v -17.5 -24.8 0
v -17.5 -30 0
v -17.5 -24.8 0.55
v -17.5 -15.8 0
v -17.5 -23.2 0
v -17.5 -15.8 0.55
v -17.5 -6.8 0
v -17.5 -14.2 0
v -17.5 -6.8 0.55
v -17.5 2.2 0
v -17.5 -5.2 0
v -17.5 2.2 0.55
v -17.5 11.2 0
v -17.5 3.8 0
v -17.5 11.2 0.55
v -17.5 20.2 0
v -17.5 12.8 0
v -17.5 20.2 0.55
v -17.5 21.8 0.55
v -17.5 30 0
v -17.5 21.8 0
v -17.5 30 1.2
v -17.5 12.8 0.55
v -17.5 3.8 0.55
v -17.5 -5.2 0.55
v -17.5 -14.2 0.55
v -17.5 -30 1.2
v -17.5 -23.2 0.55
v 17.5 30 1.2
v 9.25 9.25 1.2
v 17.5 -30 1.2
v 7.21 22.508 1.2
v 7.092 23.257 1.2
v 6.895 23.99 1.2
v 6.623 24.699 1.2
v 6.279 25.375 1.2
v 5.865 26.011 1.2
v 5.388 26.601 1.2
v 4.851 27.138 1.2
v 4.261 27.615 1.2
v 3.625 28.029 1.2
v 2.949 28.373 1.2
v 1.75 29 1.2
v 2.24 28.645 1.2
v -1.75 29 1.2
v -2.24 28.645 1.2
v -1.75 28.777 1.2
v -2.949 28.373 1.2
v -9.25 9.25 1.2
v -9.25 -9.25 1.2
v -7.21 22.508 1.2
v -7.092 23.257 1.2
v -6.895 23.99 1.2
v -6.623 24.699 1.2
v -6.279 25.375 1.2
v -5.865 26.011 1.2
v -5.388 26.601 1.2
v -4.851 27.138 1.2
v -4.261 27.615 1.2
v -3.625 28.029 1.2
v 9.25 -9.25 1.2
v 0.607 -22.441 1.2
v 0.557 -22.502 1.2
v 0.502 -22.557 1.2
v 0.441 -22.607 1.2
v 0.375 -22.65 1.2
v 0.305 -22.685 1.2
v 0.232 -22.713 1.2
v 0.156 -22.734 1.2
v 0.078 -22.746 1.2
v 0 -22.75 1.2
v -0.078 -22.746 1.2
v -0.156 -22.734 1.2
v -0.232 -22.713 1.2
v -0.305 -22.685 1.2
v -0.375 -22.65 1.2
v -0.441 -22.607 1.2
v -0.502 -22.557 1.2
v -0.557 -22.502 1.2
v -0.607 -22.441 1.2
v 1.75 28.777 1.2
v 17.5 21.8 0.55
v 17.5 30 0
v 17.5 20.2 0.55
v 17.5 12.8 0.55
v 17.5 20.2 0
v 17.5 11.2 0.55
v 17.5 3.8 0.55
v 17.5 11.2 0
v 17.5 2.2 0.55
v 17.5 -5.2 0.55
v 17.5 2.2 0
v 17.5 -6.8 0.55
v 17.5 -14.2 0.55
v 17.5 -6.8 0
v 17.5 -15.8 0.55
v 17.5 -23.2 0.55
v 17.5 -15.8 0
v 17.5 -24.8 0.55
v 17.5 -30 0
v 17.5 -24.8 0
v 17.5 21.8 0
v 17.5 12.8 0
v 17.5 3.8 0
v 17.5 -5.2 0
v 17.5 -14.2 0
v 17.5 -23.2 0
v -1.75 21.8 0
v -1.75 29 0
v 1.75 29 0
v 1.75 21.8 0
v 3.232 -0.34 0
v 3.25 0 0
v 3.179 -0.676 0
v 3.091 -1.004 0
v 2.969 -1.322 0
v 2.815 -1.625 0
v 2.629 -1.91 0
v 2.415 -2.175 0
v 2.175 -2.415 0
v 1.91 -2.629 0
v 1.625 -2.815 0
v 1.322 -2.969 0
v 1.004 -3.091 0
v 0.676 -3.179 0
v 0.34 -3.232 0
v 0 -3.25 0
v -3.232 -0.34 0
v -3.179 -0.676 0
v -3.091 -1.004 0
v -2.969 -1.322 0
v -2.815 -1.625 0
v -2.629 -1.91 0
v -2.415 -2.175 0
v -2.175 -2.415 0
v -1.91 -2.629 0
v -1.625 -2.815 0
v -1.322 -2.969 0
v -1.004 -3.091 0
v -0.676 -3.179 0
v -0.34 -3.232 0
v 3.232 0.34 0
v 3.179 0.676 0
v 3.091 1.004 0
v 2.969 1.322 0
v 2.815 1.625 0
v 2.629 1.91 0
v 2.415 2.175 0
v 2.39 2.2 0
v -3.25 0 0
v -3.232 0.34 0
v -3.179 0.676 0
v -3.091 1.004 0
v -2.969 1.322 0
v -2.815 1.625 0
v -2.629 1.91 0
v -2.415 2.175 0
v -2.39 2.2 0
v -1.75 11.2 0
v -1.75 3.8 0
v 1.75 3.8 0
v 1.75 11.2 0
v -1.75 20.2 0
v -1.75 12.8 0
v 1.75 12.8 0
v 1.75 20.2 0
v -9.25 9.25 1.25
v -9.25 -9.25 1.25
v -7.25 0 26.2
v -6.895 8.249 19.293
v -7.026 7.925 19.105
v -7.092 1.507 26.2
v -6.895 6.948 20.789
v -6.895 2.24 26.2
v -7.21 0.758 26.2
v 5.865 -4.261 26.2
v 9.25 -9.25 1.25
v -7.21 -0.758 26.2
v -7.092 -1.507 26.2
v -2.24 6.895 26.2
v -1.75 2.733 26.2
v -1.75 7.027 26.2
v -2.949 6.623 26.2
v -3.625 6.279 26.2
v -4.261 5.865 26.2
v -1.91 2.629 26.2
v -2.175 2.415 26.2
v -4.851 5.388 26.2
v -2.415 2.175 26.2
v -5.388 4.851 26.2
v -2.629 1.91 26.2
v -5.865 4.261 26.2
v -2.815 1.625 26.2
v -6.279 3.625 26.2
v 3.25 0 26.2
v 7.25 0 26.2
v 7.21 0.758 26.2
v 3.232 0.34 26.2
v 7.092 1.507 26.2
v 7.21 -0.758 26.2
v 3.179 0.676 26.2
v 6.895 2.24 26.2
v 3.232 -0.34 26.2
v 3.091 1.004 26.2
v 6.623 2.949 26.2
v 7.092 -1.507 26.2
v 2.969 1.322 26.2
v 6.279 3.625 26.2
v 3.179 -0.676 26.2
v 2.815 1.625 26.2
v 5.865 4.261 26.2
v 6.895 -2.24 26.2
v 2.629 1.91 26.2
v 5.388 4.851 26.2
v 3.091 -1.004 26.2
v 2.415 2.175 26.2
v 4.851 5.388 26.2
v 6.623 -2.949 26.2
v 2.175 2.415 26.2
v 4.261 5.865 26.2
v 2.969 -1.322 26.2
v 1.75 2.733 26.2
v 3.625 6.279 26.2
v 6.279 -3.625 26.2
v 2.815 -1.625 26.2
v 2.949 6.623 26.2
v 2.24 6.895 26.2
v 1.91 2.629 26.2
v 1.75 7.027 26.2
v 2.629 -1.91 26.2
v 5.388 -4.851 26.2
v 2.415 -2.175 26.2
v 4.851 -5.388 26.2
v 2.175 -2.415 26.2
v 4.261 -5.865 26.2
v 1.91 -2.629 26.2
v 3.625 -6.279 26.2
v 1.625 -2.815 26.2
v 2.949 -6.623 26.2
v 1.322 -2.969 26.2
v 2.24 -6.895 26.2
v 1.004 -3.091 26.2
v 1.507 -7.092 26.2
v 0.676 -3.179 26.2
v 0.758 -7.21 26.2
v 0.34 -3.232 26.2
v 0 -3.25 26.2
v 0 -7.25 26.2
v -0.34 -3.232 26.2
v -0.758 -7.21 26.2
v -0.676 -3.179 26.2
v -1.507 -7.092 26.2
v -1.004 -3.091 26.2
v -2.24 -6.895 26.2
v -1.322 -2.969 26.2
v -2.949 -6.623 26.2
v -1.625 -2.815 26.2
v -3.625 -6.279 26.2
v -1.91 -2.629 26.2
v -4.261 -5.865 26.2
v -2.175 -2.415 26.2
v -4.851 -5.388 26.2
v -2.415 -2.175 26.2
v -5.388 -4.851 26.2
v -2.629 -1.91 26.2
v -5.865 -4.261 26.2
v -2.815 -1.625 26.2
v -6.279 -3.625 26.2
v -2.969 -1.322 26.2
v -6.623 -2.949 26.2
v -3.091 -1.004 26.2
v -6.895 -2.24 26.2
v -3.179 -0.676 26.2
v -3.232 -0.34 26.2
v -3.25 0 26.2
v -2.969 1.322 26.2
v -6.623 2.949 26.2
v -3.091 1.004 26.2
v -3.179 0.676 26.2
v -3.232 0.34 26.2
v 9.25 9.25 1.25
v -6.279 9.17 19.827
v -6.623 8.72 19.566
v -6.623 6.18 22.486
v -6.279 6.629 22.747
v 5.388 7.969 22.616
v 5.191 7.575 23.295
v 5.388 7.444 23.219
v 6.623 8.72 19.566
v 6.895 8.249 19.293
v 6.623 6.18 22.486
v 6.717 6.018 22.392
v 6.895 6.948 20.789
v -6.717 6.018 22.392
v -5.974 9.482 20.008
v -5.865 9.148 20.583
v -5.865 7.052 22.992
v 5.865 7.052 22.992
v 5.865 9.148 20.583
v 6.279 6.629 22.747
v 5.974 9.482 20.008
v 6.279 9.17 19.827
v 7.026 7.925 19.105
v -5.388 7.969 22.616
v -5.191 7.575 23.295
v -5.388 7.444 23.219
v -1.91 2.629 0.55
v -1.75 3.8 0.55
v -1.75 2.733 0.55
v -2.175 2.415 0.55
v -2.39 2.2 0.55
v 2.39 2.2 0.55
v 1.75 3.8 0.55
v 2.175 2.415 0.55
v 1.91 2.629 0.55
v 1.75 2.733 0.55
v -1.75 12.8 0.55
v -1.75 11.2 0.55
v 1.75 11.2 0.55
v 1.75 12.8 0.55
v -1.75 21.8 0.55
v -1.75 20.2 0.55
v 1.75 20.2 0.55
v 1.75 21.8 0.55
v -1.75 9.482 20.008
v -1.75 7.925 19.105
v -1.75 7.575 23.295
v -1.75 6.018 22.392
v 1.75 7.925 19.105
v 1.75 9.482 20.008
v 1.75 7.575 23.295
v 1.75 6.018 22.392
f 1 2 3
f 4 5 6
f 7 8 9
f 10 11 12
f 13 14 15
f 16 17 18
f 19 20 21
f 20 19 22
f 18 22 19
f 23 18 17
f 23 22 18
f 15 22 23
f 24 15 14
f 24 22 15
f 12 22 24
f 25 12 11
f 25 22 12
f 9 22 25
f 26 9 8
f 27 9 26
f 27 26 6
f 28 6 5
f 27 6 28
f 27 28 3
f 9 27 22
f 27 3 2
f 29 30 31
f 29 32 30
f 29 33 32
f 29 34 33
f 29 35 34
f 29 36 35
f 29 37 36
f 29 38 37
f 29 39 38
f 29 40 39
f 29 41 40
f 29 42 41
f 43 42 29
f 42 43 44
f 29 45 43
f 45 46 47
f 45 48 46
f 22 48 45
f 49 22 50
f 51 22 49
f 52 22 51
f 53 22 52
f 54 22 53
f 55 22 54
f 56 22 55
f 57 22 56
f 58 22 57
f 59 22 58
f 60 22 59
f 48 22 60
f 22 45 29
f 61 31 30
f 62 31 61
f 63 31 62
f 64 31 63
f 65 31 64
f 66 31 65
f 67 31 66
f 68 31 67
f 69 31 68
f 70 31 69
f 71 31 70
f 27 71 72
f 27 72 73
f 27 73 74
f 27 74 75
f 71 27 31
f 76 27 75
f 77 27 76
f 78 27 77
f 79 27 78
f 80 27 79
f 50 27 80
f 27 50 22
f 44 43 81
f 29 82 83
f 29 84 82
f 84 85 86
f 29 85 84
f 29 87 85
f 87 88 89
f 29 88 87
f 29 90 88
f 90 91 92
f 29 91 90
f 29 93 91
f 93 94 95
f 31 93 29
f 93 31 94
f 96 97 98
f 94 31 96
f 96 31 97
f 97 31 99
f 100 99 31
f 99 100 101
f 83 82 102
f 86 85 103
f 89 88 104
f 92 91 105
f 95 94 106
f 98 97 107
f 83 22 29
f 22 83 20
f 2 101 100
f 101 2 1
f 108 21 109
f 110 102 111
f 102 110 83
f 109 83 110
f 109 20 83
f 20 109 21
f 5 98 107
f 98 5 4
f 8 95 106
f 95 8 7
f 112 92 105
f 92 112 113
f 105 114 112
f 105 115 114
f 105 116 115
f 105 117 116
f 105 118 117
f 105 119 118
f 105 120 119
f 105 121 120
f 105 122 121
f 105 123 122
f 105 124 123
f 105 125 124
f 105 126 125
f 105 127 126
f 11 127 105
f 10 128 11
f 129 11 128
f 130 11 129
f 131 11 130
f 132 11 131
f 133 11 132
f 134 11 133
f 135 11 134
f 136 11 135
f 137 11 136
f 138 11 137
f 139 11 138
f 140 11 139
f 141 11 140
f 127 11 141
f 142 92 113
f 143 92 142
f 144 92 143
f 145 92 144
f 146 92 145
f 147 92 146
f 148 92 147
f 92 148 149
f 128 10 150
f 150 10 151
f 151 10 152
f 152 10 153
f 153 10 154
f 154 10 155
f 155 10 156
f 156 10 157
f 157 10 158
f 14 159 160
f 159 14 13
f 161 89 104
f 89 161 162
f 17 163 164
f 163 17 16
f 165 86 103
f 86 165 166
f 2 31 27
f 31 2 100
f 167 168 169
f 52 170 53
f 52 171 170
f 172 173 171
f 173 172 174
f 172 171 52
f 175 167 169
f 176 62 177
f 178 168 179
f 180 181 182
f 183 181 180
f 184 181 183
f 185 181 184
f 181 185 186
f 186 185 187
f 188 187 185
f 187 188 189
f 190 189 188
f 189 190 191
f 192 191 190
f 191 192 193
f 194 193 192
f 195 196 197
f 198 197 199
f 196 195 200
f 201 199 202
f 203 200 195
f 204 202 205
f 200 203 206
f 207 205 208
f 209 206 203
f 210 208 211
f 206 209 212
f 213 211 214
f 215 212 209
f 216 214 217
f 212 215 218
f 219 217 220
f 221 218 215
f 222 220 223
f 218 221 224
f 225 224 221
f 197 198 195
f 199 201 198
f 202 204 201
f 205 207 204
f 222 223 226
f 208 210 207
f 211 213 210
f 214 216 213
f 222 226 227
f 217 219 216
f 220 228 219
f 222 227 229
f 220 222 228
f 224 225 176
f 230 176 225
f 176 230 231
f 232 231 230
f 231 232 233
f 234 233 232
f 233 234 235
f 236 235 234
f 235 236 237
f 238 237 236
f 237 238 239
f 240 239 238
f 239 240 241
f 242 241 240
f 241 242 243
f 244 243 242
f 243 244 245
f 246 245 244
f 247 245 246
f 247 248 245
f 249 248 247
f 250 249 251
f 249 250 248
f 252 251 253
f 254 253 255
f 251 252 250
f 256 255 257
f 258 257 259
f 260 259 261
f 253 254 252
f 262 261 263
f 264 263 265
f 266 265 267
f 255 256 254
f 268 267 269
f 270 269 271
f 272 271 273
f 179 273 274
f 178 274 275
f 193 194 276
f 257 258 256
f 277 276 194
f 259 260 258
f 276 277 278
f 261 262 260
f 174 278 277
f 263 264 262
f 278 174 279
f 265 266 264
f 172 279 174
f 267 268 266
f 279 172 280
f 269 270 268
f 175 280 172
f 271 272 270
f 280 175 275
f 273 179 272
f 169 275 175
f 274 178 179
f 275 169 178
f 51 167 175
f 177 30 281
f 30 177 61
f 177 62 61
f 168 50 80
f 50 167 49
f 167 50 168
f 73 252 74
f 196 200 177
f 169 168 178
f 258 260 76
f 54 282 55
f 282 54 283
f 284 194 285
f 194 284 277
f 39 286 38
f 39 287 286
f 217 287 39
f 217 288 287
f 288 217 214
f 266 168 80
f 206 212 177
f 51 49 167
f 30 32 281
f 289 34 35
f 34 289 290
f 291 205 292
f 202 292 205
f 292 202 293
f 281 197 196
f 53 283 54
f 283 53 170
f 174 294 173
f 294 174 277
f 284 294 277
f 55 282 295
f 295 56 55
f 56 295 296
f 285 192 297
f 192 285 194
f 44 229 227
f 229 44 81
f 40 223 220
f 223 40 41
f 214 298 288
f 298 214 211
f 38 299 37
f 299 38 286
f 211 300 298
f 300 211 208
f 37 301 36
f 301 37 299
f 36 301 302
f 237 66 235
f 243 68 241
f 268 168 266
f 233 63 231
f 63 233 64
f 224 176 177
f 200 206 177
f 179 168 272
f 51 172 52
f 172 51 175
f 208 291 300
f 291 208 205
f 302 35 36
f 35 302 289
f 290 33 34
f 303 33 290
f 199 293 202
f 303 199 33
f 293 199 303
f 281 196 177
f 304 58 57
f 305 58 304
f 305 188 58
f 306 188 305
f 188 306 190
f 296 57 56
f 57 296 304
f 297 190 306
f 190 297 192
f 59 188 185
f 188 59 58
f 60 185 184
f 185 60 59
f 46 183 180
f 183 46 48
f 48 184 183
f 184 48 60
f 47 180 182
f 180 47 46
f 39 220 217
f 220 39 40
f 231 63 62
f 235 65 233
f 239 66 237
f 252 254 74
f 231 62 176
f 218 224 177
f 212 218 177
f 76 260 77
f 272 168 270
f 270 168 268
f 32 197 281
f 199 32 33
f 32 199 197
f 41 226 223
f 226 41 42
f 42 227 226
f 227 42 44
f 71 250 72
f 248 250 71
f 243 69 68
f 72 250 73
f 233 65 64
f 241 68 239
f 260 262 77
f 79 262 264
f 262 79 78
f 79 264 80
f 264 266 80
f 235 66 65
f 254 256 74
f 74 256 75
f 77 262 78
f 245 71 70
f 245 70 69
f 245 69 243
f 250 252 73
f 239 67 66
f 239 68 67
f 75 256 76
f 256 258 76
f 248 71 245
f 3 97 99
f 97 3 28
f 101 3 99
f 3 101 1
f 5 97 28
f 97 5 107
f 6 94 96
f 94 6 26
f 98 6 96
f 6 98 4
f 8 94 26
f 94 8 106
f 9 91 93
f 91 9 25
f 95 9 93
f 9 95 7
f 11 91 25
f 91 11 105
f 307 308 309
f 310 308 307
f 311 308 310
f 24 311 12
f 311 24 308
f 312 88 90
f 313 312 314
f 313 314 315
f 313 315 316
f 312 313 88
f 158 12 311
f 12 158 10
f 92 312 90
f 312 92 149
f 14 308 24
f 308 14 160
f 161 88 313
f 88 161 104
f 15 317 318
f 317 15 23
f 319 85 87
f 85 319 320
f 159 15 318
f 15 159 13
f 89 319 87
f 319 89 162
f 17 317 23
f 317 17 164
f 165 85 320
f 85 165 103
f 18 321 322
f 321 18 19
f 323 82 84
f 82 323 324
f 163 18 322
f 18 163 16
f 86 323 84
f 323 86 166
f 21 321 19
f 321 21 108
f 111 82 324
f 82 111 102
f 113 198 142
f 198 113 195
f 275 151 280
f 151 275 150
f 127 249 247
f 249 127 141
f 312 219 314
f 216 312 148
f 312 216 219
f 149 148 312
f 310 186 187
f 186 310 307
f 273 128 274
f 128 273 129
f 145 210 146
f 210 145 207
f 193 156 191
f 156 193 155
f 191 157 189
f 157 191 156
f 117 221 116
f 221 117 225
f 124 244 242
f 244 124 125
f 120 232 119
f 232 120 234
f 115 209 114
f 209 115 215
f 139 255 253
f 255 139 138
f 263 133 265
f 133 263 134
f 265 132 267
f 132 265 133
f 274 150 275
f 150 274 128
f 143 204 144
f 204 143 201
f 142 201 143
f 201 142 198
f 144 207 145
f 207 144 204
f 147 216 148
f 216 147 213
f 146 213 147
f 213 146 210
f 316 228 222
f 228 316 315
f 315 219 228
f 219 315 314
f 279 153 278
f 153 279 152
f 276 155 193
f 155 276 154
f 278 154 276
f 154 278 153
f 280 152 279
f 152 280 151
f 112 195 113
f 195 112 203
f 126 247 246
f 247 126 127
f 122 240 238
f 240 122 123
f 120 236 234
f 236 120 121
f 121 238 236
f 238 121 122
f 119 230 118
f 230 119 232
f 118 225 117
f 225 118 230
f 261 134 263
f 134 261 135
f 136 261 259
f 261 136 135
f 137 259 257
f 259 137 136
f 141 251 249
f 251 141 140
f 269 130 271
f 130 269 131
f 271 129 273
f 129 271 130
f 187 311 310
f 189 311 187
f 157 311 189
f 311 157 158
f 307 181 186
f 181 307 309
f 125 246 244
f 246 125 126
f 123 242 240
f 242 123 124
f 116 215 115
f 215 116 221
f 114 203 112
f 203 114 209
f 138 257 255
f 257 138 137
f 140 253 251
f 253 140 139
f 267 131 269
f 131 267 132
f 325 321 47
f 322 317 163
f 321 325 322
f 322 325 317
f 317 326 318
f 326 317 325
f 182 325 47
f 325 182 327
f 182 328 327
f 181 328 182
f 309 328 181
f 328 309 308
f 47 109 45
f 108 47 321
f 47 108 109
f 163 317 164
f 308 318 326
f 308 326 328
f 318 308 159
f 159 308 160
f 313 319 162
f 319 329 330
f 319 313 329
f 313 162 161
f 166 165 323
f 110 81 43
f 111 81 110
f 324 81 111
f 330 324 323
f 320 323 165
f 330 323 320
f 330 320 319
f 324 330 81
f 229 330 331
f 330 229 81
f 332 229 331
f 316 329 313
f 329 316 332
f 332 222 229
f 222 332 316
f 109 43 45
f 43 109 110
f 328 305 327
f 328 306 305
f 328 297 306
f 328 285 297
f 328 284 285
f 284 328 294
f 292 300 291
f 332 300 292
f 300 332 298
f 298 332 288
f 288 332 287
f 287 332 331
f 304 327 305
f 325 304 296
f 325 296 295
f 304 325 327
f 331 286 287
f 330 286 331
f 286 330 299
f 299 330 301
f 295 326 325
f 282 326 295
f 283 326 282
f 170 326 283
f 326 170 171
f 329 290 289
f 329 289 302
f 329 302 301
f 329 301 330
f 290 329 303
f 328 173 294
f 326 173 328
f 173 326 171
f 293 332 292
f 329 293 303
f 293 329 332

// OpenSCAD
// =============================================================================
// PROJECT: FIXED-WING "HIGH-PINCH" TOWER 
// VERSION: 1.7 (Elevated Pinch & Reinforced Trailing Edge)
// DESCRIPTION: Zip-tie slot moved toward the top of the mast to maximize 
//              clamping force on the SMA connector barrel.
// =============================================================================

/* [1. BASE PLATE SETTINGS] */
base_w          = 35.0;  
base_l          = 60.0;  
base_thick      = 1.2;   
slot_width      = 1.6;   

/* [2. TOWER GEOMETRY] */
tower_h         = 25.0;  
sma_hole_dia    = 6.5;   
cable_slot_w    = 3.5;
wall_thickness  = 4.0;   
leading_edge_dist = 22.0; 

/* [3. RETENTION (The High Pinch)] */
ziptie_width    = 3.8;
ziptie_thick    = 1.8;
// REDUCED DROP: Clamps higher up for more stability (mm from top)
ziptie_drop     = 5.0; 
// Keeps the slot in the "meat" of the tower
ziptie_forward_shift = 0.5;

/* [4. INTERNAL CALCULATIONS] */
$fn = 60;
tower_dia = sma_hole_dia + (wall_thickness * 2);

// CALCULATE THE ANGLE: 
// Matches the slant of the rear spine.
spine_run   = (tower_dia * 1.5) - (tower_dia / 2);
spine_angle = atan2(spine_run, tower_h);

// =============================================================================
// MAIN ASSEMBLY
// =============================================================================

difference() {
    // --- STEP 1: THE SOLID BODY ---
    union() {
        // A. The Flexible Base Plate
        translate([0, 0, base_thick/2])
            cube([base_w, base_l, base_thick], center=true);
        
        // B. The Aero-Tower
        hull() {
            cylinder(h=tower_h + base_thick, d=tower_dia);
            
            // Leading Edge (Sharp entry)
            translate([0, -leading_edge_dist, 0])
                cylinder(h=base_thick, d=1.5); 
            
            // Trailing Spine (Tapered exit)
            translate([0, tower_dia * 1.5, 0])
                cylinder(h=base_thick, d=tower_dia);

            // Base Reinforcement
            translate([0, 0, base_thick])
                cube([tower_dia + 4, tower_dia + 4, 0.1], center=true);
        }
    }

    // --- STEP 2: THE SUBTRACTIONS ---

    // A. FLEX RELIEF SLOTS
    for(i = [-base_l/2 + 6 : 9 : base_l/2 - 6]) {
        translate([0, i, -0.1])
            cube([base_w + 2, slot_width, base_thick + 0.1], center=true);
    }

    // B. THE SMA BORE
    translate([0, 0, -1])
        cylinder(h=tower_h + base_thick + 5, d=sma_hole_dia);

    // C. THE REAR LOADING SLOT
    translate([0, tower_dia, (tower_h + base_thick)/2])
        cube([cable_slot_w, tower_dia * 2, tower_h + base_thick + 10], center=true);

    // D. THE HIGH-POSITIONED ZIP-TIE TRENCH
    // Tilted to match the spine but elevated for better leverage.
    translate([0, (tower_dia/2) + ziptie_forward_shift, tower_h + base_thick - ziptie_drop])
        rotate([spine_angle, 0, 0]) 
            cube([tower_dia + 10, ziptie_thick, ziptie_width], center=true);

    // E. BOTTOM CABLE PORT
    translate([0, 0, -1])
        cylinder(h=base_thick + 5, d=sma_hole_dia);
}
